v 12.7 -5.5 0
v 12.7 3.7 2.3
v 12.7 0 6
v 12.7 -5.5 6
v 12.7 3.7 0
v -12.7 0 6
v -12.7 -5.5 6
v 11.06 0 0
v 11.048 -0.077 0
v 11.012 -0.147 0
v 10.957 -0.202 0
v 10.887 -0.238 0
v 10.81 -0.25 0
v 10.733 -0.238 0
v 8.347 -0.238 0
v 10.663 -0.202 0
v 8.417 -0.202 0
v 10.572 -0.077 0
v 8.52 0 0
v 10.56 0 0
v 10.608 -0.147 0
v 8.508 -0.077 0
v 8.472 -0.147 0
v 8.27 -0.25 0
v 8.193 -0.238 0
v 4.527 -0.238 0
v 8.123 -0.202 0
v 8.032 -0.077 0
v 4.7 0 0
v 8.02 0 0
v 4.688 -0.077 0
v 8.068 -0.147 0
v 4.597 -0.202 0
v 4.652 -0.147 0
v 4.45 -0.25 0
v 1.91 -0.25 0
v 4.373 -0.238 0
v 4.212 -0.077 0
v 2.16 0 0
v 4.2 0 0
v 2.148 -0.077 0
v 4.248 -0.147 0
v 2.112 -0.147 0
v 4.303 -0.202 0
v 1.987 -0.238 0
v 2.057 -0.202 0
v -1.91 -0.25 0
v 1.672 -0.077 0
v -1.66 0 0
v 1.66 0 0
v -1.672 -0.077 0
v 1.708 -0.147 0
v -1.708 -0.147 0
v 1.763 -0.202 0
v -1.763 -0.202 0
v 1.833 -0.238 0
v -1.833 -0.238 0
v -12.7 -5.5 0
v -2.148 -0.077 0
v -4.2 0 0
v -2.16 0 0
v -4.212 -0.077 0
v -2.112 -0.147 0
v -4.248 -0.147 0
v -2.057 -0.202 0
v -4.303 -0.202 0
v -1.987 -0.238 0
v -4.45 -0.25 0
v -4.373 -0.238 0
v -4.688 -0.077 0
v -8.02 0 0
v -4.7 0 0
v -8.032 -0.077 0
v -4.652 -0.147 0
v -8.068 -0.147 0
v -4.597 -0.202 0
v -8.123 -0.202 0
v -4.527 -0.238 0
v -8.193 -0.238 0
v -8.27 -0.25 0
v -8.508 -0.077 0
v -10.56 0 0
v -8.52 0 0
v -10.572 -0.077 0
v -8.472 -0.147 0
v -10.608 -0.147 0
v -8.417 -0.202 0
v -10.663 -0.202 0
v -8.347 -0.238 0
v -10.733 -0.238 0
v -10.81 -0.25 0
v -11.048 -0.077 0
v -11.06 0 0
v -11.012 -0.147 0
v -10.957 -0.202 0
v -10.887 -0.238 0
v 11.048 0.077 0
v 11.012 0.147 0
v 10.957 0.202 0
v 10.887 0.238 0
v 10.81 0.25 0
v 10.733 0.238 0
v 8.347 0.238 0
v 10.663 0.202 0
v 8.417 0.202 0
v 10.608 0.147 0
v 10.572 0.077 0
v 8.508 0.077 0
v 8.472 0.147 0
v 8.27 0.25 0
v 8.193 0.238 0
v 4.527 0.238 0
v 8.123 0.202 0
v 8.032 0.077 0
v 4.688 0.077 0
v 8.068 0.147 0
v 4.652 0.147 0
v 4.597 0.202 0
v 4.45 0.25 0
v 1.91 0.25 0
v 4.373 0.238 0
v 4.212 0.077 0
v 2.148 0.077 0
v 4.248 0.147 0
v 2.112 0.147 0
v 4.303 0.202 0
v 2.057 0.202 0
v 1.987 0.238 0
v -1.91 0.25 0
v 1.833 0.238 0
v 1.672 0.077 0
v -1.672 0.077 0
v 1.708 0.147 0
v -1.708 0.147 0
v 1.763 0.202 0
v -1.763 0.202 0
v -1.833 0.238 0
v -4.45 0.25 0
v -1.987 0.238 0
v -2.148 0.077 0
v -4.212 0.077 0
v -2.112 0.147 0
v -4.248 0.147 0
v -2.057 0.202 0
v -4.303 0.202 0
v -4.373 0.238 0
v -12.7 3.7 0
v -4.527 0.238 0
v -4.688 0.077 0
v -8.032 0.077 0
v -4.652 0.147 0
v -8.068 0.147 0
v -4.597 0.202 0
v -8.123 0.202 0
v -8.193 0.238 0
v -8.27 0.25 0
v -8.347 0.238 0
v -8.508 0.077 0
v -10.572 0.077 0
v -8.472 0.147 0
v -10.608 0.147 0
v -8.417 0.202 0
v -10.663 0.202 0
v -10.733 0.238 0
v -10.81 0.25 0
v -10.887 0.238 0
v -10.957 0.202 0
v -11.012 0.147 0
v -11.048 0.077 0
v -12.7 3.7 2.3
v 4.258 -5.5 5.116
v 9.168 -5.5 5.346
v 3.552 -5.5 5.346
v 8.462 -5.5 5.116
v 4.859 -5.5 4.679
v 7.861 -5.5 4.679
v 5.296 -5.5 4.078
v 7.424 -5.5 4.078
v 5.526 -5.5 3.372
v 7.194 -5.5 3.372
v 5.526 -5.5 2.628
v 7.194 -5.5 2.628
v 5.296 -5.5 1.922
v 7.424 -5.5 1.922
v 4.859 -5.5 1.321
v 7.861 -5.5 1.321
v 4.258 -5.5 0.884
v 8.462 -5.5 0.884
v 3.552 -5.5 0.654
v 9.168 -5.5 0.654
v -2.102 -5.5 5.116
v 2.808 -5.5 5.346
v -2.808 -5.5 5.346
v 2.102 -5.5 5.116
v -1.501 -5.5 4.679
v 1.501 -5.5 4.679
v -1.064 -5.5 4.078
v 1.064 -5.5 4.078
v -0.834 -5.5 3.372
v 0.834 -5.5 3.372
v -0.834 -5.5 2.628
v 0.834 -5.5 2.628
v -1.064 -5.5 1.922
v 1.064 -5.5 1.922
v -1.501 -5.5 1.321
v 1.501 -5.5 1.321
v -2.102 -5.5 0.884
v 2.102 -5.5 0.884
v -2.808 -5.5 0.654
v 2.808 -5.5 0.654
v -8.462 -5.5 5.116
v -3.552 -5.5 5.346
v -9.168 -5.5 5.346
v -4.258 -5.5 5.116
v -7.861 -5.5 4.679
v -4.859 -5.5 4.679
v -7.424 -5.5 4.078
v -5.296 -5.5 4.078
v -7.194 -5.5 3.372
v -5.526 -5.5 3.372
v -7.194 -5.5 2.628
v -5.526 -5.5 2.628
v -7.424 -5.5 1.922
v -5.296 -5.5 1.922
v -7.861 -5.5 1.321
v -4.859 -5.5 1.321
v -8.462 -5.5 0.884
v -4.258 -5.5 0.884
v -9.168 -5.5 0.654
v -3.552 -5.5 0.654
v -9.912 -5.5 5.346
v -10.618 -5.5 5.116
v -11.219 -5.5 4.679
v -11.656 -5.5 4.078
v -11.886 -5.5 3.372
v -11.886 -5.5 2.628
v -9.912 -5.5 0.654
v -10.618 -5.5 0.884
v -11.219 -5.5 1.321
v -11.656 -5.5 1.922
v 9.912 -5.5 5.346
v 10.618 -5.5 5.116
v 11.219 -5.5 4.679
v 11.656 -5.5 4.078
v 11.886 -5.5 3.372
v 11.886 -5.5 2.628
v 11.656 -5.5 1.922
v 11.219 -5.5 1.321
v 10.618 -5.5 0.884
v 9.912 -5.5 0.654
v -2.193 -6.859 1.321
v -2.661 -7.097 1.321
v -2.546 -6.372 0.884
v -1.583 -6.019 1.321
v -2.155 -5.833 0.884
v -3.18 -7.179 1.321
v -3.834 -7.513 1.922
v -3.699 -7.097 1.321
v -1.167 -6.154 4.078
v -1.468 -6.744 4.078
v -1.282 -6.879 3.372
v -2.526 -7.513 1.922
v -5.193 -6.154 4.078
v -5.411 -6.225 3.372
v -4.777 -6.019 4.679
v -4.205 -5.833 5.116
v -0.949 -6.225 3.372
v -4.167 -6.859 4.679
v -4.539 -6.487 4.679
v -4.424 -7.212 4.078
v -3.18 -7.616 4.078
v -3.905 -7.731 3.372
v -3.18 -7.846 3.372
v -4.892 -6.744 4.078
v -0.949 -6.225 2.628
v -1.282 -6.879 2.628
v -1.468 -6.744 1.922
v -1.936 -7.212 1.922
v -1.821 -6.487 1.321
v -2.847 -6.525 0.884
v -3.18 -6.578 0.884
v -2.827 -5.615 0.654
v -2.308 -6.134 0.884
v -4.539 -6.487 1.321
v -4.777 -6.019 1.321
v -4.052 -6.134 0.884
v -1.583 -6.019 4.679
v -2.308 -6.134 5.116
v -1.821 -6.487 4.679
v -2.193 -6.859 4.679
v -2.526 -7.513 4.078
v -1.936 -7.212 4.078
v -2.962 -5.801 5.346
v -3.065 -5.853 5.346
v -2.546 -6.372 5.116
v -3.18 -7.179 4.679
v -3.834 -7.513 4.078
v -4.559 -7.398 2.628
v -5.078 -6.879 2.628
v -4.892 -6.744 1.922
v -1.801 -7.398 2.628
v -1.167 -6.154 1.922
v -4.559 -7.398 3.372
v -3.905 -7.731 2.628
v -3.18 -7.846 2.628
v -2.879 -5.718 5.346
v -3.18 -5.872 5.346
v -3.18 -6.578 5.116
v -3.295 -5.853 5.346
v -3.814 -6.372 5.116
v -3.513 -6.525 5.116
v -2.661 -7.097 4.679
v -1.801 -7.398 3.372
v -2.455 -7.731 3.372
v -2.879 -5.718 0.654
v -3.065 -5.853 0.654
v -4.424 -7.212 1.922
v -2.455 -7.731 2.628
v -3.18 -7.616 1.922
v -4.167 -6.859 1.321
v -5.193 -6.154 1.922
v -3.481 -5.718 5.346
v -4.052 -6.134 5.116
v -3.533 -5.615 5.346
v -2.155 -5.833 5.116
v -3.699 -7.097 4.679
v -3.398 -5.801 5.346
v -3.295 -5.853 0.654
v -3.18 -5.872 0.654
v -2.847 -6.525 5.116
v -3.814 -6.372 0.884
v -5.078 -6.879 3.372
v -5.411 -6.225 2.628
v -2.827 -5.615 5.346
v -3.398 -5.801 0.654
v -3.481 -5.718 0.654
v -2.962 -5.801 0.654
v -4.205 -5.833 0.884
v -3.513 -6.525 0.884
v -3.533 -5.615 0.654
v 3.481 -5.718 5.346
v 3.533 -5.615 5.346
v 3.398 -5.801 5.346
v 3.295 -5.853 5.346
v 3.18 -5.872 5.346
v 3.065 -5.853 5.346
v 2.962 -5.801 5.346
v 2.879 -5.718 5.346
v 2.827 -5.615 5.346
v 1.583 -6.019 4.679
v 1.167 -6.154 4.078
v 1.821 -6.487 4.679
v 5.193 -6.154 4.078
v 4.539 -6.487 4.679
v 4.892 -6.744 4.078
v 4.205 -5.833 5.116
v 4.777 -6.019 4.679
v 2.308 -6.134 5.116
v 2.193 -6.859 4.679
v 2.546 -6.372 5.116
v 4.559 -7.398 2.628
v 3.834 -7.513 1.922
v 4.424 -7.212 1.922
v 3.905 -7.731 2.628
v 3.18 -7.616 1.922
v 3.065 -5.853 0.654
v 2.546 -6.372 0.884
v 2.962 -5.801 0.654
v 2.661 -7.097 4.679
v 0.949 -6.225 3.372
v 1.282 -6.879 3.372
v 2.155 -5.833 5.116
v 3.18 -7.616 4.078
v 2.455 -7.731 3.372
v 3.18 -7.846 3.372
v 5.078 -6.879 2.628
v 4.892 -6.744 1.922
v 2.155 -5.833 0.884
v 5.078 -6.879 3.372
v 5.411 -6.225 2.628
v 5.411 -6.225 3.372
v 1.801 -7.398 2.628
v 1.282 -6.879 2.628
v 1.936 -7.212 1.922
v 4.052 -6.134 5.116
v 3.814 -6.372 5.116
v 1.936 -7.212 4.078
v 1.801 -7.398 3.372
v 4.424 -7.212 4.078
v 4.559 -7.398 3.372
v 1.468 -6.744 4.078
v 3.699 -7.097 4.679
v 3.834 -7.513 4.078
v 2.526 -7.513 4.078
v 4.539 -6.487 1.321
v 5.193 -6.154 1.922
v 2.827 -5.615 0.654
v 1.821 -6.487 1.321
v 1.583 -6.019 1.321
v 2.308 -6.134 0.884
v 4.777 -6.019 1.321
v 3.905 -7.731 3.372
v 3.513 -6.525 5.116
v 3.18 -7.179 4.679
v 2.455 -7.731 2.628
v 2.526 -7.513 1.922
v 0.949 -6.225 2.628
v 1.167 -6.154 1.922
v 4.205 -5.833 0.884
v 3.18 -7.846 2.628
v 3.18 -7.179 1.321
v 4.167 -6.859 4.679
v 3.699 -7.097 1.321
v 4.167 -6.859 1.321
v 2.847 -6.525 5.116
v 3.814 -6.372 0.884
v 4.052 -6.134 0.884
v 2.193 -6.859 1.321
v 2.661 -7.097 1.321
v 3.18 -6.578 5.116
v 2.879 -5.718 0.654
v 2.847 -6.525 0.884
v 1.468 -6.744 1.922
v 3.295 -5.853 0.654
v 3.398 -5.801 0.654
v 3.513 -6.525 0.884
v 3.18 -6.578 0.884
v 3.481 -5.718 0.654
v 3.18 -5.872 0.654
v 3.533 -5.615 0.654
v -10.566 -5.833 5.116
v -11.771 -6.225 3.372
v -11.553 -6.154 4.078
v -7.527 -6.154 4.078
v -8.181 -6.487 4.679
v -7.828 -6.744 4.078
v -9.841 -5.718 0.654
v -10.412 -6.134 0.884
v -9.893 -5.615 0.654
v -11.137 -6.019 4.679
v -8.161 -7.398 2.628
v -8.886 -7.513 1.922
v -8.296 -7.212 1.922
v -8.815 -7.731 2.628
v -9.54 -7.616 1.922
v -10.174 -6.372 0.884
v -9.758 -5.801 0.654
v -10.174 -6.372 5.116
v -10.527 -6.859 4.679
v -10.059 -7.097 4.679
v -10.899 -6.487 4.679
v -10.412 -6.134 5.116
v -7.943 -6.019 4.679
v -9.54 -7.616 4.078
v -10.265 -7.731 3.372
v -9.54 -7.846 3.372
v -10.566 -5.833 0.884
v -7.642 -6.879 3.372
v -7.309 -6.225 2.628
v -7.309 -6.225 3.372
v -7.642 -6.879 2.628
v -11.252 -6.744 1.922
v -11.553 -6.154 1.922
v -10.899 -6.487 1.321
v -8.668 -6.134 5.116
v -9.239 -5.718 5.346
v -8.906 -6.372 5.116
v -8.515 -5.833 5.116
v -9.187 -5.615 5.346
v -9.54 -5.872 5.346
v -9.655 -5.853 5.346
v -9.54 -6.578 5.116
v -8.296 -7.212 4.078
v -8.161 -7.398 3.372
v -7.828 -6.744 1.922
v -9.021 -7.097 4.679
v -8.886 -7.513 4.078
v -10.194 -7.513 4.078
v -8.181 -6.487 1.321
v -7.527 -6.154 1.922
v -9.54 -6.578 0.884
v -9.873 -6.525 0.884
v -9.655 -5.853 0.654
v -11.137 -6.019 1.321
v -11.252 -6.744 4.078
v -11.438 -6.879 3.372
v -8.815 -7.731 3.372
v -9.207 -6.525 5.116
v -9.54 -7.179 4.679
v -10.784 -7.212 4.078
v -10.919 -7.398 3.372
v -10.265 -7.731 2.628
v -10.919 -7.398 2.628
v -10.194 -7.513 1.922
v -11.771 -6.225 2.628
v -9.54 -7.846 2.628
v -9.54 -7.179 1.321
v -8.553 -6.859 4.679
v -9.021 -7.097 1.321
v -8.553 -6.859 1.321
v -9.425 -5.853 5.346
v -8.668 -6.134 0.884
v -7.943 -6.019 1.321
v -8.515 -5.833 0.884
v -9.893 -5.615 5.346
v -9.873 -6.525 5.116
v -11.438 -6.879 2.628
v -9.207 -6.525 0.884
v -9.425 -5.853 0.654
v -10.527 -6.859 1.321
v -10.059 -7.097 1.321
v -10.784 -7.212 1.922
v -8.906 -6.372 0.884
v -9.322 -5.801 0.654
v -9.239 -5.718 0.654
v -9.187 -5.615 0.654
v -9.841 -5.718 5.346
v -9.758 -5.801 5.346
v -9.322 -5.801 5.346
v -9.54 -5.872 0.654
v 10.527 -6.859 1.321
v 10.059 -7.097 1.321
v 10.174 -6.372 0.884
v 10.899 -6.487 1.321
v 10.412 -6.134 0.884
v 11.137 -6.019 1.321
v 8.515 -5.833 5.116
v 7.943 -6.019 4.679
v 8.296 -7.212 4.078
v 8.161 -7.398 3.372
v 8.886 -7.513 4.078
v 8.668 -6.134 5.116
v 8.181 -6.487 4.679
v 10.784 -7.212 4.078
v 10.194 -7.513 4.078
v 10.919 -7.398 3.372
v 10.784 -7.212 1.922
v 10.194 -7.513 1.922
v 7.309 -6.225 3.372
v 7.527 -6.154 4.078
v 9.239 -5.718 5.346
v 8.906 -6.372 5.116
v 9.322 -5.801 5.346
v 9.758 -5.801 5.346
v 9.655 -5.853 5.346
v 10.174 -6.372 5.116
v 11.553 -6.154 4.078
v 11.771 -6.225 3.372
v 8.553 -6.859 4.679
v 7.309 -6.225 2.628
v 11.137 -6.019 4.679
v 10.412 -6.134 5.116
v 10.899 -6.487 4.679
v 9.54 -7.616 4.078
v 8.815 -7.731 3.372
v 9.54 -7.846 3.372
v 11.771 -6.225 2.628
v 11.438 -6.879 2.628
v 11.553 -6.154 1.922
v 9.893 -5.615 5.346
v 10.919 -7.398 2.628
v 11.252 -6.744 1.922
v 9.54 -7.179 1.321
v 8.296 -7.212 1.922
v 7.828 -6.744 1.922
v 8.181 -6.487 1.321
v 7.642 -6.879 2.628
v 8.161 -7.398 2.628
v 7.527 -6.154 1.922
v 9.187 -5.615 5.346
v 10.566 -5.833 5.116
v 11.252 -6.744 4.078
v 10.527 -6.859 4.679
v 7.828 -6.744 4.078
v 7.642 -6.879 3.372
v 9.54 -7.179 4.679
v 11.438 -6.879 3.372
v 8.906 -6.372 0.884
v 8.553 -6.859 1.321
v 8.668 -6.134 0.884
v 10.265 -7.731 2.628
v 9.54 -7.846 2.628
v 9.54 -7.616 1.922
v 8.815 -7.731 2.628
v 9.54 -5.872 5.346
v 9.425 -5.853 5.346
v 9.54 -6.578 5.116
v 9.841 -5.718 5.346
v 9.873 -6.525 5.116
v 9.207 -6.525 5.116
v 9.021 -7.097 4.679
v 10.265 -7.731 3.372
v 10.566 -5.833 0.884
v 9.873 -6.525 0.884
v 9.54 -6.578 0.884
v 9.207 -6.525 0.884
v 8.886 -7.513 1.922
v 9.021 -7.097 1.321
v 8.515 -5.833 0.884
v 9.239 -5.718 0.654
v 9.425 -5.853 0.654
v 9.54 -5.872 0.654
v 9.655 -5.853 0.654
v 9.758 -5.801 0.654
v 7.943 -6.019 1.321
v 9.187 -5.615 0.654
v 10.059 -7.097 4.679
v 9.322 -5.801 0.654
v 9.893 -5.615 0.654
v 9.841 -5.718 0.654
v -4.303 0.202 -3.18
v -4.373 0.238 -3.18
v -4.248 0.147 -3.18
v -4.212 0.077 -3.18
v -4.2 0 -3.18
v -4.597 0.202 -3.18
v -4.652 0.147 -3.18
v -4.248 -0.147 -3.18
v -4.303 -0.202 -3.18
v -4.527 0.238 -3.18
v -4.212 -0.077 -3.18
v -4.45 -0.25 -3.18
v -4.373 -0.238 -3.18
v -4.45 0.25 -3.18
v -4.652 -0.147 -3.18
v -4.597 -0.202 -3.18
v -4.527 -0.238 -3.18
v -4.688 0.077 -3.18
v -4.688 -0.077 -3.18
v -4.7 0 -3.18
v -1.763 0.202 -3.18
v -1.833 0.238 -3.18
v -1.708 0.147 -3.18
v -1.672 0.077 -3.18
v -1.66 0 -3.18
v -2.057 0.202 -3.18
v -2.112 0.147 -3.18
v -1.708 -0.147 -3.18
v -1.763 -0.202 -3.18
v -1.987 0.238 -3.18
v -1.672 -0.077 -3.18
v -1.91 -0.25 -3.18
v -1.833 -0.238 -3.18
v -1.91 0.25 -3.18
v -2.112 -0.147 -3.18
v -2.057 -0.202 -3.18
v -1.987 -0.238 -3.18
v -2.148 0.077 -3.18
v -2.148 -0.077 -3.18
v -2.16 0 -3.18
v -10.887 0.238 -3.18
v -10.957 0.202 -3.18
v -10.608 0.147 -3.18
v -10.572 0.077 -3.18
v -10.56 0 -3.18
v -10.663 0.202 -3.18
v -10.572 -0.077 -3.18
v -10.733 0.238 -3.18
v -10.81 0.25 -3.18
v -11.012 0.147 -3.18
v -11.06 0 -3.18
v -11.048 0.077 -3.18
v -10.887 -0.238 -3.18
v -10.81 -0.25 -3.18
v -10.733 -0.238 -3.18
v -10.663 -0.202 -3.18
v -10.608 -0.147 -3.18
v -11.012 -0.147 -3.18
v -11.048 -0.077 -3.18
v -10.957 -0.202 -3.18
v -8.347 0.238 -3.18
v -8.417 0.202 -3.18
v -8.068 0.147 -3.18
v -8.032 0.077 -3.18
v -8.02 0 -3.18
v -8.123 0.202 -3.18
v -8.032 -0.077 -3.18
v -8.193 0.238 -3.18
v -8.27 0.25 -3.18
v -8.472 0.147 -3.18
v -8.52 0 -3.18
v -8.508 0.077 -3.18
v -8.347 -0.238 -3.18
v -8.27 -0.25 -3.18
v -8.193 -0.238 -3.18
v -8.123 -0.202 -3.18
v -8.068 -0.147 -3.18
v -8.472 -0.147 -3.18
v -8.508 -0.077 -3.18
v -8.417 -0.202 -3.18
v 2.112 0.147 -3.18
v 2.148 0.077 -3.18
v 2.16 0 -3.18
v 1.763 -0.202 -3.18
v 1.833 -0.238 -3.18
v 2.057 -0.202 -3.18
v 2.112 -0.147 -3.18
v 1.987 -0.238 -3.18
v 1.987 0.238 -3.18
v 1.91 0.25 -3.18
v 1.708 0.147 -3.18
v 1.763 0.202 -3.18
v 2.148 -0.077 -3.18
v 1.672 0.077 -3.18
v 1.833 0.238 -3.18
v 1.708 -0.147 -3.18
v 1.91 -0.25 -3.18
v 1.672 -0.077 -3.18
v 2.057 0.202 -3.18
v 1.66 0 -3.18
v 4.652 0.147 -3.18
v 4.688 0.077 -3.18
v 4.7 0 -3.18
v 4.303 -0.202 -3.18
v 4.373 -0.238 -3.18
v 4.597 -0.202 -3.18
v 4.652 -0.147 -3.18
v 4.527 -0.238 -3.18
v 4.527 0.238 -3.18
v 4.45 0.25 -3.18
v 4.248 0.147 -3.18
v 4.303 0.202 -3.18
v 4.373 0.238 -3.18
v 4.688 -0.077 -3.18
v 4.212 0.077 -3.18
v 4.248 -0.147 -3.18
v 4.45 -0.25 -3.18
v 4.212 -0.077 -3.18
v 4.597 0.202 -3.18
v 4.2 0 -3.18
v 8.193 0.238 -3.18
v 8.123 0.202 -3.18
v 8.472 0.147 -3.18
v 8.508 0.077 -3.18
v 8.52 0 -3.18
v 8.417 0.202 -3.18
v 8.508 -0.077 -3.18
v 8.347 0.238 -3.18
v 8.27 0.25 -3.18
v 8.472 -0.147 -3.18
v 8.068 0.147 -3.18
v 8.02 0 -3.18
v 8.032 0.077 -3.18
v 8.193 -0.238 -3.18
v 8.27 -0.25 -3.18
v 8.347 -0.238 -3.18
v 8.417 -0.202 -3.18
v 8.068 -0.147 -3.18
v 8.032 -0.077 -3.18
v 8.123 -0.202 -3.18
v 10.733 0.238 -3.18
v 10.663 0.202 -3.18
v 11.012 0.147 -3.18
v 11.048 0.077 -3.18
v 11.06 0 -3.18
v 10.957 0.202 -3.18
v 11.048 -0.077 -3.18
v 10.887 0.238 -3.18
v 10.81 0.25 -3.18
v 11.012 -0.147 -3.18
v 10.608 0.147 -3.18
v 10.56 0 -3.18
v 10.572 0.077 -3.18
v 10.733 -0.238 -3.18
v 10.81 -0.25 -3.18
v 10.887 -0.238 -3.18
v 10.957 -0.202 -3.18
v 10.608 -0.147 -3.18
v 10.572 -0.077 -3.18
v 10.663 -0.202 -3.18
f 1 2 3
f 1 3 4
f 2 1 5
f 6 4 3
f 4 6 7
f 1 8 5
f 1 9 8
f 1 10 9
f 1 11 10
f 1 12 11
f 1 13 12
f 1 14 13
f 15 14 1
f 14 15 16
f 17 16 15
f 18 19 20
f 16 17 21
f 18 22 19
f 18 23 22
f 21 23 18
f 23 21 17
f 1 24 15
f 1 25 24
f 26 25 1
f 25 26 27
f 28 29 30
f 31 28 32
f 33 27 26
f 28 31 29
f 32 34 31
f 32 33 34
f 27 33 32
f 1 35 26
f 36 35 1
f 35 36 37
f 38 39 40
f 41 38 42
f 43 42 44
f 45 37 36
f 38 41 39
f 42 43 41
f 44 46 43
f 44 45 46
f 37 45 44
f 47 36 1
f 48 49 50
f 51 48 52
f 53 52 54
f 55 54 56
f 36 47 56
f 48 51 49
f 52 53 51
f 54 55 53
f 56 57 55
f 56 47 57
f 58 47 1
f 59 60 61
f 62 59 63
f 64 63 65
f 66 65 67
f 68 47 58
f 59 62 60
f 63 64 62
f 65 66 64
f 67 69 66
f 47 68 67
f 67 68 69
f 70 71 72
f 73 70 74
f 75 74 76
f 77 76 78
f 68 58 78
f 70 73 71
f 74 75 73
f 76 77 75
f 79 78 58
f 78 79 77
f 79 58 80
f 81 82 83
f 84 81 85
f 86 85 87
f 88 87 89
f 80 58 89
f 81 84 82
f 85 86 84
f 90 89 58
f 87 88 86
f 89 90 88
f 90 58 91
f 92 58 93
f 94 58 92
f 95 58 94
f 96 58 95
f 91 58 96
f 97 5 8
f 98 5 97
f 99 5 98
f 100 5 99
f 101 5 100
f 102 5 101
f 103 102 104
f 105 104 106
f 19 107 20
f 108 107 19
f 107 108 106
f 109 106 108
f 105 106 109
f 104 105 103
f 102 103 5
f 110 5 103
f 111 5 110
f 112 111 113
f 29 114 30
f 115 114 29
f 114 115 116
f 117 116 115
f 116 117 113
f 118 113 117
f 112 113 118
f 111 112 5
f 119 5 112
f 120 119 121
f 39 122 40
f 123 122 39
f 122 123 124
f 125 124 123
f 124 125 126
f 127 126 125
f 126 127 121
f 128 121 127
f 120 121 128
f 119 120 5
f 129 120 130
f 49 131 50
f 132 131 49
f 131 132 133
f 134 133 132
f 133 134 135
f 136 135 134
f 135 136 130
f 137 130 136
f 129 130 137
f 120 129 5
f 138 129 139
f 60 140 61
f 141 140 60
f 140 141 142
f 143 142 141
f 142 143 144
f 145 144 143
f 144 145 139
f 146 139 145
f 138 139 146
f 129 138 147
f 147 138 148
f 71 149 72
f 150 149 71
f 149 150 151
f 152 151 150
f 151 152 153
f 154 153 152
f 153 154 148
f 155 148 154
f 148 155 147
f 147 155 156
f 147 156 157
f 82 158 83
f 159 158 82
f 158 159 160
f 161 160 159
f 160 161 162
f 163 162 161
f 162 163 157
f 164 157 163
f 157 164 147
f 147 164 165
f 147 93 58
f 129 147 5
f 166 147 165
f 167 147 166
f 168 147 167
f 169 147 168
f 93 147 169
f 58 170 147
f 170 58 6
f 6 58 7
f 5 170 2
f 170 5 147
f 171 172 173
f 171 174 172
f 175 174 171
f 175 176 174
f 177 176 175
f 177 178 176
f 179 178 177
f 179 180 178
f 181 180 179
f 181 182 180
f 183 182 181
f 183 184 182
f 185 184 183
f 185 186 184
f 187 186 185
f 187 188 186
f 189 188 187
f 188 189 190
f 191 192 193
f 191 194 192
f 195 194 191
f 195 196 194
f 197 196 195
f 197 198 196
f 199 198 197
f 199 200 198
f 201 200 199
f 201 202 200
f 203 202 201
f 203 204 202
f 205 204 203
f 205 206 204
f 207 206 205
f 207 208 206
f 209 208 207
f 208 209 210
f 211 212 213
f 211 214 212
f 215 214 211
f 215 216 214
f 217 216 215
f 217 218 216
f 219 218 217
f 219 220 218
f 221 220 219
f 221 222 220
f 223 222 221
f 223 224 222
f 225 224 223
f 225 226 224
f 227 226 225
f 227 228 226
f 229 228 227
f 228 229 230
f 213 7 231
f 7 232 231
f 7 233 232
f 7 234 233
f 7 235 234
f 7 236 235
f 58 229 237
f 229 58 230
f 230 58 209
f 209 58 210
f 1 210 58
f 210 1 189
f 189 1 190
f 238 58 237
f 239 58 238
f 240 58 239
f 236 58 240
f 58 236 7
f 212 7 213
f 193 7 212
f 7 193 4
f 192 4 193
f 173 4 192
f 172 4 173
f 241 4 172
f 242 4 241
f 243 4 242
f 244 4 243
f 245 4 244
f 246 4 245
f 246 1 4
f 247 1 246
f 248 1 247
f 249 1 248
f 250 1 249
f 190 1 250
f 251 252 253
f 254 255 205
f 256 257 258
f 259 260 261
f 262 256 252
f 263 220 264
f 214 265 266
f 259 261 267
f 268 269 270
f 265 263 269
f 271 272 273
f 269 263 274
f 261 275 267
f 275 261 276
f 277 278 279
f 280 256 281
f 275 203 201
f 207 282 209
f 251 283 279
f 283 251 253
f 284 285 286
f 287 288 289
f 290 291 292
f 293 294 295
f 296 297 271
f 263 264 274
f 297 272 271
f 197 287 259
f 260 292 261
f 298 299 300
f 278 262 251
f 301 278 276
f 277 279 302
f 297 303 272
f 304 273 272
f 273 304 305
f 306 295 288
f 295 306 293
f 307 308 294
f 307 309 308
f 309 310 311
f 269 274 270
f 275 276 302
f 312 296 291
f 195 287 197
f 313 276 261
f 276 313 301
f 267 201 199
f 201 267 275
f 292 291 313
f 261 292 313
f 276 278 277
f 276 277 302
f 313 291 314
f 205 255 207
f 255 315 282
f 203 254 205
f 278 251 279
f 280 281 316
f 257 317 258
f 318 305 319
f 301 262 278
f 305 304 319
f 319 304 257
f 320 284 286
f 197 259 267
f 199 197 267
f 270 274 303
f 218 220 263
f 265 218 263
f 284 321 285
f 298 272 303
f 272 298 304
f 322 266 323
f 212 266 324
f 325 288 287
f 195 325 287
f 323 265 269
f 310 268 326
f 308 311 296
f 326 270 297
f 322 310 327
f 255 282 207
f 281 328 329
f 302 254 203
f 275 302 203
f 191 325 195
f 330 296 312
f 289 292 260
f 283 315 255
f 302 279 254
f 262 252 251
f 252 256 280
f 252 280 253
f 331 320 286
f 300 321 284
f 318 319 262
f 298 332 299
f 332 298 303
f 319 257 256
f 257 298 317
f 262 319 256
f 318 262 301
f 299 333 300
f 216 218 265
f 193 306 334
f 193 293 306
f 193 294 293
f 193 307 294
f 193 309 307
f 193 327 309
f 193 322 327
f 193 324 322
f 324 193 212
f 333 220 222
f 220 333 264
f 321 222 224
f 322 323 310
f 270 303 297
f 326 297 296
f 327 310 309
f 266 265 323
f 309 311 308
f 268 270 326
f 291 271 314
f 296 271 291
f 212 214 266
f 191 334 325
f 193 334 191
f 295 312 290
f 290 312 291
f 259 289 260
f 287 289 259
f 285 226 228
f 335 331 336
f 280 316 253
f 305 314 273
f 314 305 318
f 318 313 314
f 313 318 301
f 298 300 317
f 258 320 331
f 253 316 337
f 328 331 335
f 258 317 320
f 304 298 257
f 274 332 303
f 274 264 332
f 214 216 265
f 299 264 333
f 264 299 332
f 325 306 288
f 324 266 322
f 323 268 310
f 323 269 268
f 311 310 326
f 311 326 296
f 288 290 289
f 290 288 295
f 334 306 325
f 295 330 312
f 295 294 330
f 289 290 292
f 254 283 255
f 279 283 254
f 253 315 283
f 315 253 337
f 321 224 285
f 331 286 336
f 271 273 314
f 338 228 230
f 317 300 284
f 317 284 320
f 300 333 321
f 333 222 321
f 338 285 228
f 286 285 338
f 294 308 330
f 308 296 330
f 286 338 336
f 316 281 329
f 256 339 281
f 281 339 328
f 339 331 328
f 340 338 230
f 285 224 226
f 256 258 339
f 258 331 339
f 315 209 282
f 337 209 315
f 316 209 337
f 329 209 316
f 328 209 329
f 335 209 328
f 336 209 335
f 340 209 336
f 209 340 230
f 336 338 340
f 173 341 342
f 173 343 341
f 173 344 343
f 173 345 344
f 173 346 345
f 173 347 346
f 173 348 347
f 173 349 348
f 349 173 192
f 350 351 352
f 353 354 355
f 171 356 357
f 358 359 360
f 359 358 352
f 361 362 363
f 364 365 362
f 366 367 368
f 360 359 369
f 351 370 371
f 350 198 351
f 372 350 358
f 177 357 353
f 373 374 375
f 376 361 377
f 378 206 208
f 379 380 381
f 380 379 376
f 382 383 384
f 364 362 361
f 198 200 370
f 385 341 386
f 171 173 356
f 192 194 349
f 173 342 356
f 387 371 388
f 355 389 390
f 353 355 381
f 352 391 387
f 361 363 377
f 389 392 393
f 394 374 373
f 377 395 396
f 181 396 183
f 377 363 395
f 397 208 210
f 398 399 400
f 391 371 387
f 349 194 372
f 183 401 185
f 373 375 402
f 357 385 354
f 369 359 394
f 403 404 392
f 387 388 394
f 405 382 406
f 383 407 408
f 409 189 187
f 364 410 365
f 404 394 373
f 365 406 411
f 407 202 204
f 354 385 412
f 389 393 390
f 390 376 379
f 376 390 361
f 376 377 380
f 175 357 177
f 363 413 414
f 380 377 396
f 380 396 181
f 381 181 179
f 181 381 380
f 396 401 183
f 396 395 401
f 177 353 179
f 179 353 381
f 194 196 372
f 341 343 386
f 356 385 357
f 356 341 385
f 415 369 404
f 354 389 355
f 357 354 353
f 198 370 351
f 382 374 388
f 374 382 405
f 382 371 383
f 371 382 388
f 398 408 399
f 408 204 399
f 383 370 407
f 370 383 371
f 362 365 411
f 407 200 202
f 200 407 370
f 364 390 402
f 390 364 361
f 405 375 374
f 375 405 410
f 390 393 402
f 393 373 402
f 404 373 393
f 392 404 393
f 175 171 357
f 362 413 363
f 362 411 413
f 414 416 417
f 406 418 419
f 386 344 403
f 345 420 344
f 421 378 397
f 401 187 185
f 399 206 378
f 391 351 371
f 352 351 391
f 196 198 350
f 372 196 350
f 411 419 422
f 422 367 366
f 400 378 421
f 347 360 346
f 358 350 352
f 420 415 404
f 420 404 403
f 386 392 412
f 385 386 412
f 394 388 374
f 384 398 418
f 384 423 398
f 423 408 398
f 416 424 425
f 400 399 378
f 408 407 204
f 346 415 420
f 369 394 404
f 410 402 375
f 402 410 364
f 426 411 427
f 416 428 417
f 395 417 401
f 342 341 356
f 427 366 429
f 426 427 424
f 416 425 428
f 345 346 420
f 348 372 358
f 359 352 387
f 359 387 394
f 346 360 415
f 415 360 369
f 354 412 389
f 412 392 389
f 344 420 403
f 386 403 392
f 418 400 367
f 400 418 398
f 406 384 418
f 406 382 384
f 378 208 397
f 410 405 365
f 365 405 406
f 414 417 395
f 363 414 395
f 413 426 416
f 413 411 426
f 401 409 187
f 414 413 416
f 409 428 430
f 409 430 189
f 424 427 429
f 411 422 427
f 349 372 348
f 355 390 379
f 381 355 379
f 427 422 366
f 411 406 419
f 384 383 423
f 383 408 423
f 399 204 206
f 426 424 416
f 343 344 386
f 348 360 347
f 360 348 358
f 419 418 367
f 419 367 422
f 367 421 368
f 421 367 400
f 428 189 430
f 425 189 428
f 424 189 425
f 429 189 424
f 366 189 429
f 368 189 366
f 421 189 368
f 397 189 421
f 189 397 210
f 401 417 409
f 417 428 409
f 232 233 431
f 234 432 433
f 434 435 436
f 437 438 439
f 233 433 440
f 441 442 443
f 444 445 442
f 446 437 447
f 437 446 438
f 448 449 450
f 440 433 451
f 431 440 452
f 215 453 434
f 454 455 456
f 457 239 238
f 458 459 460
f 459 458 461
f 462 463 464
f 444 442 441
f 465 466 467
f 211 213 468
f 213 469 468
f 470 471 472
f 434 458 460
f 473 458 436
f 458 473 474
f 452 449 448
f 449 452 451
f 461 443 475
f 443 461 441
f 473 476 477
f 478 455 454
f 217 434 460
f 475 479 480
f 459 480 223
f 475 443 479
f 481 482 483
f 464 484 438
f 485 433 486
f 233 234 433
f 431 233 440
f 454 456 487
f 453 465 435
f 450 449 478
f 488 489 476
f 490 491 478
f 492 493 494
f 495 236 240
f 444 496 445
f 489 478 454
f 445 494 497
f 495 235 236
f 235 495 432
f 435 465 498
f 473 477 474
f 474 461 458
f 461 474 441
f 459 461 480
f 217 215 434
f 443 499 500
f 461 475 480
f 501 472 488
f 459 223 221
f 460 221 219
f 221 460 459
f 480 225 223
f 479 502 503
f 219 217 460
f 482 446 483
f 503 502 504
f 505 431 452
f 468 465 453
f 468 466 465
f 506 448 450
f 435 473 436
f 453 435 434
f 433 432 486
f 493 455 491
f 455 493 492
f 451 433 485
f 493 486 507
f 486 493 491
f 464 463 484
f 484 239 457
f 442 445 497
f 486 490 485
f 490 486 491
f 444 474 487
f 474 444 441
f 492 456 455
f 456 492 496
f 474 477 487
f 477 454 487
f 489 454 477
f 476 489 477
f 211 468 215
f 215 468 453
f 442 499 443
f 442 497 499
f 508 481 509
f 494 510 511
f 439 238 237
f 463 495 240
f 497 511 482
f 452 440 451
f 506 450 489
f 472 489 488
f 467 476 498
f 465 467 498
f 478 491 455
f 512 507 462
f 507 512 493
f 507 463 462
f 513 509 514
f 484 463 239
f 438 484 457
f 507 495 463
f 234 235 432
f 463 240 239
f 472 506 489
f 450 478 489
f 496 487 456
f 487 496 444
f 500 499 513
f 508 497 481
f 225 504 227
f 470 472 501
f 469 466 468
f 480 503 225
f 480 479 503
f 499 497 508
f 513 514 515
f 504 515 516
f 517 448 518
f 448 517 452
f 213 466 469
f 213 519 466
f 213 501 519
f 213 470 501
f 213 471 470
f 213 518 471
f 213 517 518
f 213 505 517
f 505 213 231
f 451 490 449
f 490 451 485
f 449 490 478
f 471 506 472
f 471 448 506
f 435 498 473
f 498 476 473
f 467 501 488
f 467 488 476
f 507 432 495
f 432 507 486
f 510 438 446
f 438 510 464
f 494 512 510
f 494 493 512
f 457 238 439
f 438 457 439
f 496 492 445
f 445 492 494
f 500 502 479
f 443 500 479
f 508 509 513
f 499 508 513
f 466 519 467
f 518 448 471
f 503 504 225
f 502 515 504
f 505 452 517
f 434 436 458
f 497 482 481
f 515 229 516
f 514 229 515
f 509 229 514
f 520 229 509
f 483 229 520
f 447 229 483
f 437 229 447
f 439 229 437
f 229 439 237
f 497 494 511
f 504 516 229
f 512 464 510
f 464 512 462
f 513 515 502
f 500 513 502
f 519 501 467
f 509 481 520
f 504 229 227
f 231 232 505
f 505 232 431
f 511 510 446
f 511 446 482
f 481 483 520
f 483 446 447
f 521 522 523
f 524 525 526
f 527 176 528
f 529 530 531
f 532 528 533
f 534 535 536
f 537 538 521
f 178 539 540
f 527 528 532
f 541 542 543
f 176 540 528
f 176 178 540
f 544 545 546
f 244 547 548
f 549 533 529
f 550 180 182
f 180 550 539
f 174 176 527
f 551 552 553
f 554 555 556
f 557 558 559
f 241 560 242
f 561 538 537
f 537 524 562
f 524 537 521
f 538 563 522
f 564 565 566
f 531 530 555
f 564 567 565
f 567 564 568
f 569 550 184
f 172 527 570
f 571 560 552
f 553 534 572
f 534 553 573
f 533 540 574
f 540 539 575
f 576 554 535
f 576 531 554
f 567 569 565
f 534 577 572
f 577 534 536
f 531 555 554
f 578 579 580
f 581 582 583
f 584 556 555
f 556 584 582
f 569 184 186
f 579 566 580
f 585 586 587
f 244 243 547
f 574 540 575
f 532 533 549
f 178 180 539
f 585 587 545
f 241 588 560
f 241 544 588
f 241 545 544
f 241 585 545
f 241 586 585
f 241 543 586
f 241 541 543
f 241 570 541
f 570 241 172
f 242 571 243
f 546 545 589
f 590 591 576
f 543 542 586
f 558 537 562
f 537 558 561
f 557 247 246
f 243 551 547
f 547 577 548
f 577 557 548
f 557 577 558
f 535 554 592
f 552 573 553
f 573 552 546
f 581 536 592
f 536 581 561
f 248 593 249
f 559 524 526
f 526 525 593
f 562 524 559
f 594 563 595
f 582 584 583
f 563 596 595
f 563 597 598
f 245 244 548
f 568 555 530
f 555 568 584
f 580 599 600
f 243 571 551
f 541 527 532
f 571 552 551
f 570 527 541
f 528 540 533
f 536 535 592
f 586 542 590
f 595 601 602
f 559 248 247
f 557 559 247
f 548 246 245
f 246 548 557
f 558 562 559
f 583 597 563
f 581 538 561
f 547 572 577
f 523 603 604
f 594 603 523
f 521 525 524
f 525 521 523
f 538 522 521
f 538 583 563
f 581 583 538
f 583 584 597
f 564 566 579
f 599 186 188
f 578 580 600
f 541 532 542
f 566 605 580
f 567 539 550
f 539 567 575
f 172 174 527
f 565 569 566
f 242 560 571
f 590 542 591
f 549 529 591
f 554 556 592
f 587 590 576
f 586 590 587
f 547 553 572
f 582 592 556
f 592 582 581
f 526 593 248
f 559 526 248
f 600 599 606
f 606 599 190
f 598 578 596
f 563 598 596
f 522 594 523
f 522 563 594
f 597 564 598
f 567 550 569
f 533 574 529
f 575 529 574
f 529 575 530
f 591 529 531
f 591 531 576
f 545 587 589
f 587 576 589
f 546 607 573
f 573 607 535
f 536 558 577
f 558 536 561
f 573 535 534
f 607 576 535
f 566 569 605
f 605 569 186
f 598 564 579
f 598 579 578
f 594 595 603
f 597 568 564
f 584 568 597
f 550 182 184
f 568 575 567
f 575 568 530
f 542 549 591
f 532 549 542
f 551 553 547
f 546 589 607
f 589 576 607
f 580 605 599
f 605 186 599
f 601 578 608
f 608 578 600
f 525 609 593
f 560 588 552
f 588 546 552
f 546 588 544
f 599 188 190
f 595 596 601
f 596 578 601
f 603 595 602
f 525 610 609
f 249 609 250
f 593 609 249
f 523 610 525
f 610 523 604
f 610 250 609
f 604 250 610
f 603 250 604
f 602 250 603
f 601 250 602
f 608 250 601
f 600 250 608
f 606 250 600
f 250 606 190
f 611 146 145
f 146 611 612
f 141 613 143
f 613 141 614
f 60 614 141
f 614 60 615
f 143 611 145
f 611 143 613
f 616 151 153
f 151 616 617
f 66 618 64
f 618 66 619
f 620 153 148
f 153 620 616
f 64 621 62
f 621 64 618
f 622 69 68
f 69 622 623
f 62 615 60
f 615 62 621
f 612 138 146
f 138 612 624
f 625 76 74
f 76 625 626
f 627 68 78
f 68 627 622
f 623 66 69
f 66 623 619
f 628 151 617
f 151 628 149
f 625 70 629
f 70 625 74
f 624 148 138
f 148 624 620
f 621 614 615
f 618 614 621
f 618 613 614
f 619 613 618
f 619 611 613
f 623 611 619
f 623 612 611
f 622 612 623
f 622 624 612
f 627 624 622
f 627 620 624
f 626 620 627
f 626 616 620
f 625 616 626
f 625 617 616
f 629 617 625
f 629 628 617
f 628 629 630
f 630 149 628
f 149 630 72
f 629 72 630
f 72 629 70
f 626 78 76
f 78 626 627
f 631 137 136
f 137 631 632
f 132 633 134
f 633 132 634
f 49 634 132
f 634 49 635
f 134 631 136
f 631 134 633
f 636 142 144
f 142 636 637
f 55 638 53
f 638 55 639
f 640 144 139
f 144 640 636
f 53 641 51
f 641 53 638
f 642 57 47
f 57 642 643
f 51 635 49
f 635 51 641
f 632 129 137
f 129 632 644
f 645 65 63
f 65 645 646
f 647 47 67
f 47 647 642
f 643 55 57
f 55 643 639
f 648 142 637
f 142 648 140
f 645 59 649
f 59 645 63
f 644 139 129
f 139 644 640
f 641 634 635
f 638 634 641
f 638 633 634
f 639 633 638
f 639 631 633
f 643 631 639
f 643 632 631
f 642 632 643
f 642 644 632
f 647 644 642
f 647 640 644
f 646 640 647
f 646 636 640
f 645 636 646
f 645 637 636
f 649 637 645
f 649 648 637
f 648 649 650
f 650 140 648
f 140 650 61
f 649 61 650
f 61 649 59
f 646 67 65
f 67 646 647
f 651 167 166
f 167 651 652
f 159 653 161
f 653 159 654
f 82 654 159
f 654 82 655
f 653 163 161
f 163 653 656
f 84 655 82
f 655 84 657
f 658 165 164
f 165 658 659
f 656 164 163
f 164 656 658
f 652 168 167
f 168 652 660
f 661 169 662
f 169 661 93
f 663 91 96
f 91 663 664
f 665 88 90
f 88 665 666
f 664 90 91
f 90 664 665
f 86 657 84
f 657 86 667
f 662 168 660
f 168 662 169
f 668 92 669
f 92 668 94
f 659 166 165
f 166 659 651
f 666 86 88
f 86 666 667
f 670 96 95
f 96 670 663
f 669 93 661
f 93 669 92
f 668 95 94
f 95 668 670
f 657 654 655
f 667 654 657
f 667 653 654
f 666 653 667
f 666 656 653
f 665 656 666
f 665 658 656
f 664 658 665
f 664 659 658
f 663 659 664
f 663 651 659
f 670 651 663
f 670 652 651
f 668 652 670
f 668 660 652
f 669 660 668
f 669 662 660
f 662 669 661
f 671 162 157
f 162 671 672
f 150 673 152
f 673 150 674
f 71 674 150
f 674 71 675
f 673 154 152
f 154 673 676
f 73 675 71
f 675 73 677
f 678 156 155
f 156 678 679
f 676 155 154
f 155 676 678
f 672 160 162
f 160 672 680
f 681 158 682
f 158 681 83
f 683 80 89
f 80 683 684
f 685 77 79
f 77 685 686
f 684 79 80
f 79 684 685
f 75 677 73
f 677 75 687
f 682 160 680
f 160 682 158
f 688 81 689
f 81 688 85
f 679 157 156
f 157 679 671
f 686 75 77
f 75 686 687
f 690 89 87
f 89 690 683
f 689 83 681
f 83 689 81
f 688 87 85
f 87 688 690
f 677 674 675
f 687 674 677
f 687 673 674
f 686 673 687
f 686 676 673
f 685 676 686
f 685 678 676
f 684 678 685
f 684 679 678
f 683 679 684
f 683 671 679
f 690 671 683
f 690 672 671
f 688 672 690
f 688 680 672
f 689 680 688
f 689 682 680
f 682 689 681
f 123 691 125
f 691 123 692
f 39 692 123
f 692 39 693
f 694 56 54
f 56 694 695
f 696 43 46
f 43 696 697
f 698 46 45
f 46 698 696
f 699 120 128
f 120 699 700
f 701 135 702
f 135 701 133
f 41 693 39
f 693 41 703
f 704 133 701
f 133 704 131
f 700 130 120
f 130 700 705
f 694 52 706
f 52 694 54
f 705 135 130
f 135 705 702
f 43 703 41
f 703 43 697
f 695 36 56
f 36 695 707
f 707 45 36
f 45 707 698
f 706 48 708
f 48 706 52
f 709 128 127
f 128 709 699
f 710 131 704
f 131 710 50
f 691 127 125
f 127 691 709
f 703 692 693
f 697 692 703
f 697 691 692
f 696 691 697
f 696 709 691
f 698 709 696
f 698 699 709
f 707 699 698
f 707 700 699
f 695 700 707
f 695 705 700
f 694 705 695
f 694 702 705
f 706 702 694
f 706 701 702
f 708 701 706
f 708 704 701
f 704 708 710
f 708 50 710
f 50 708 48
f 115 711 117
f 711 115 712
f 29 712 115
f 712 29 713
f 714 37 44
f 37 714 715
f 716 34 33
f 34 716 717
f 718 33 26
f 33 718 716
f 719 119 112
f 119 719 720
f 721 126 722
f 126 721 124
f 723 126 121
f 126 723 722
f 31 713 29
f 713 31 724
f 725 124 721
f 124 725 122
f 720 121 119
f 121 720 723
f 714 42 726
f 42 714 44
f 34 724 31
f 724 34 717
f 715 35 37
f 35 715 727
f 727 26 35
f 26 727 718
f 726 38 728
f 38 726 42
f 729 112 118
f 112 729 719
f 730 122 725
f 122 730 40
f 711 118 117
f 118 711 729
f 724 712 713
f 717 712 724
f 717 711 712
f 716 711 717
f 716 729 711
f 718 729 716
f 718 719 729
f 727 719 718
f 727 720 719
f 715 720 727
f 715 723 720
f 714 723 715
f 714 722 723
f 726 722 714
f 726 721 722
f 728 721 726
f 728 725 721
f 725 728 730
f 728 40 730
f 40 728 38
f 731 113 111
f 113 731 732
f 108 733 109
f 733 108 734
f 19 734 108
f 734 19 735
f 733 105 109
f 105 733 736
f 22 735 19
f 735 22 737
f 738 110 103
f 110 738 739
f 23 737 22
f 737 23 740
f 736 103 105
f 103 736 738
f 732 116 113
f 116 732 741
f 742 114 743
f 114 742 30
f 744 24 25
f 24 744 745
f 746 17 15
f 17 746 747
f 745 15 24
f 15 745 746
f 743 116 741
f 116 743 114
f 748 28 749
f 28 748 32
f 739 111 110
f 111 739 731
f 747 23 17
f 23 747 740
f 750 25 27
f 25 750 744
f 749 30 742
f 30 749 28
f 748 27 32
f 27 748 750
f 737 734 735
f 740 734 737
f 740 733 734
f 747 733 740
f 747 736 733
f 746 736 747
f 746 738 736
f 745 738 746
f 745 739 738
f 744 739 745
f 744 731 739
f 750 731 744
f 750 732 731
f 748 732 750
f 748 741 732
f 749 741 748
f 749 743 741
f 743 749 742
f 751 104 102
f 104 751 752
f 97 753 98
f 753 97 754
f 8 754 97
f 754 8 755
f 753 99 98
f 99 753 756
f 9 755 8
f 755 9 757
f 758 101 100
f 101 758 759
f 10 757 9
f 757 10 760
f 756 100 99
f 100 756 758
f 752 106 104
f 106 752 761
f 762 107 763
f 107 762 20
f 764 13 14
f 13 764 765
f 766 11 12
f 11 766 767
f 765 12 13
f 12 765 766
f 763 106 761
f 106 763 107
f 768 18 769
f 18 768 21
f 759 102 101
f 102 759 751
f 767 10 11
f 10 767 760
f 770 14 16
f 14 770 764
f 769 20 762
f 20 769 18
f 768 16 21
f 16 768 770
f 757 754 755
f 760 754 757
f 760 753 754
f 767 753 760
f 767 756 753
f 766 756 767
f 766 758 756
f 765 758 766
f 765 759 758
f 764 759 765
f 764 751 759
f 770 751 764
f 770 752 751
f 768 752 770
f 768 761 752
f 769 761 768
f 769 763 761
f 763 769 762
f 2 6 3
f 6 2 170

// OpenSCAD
$fn=20;
difference() {
    union() {
        translate([-25.4/2,-5.5,0]) cube([25.4,9.20,6.00]);
        translate([-6.36/2, -5.5,3]) sphere(d=4.75);
        translate([+6.36/2, -5.5,3]) sphere(d=4.75);
        translate([-6.36/2-6.36, -5.5,3]) sphere(d=4.75);
        translate([+6.36/2+6.36, -5.5,3]) sphere(d=4.75);

        translate([-6.36/2-1.27, 0, 0]) cylinder(d=0.5, h=3.18*2, center=true);
        translate([-6.36/2+1.27, 0, 0]) cylinder(d=0.5, h=3.18*2, center=true);

        translate([-6.36/2-1.27-6.36, 0, 0]) cylinder(d=0.5, h=3.18*2, center=true);
        translate([-6.36/2+1.27-6.36, 0, 0]) cylinder(d=0.5, h=3.18*2, center=true);

        translate([-6.36/2-1.27+6.36, 0, 0]) cylinder(d=0.5, h=3.18*2, center=true);
        translate([-6.36/2+1.27+6.36, 0, 0]) cylinder(d=0.5, h=3.18*2, center=true);

        translate([-6.36/2-1.27+2*6.36, 0, 0]) cylinder(d=0.5, h=3.18*2, center=true);
        translate([-6.36/2+1.27+2*6.36, 0, 0]) cylinder(d=0.5, h=3.18*2, center=true);
    }

    translate([-22,5,1]) rotate([45,0,0]) cube([40,10,10]);
}
